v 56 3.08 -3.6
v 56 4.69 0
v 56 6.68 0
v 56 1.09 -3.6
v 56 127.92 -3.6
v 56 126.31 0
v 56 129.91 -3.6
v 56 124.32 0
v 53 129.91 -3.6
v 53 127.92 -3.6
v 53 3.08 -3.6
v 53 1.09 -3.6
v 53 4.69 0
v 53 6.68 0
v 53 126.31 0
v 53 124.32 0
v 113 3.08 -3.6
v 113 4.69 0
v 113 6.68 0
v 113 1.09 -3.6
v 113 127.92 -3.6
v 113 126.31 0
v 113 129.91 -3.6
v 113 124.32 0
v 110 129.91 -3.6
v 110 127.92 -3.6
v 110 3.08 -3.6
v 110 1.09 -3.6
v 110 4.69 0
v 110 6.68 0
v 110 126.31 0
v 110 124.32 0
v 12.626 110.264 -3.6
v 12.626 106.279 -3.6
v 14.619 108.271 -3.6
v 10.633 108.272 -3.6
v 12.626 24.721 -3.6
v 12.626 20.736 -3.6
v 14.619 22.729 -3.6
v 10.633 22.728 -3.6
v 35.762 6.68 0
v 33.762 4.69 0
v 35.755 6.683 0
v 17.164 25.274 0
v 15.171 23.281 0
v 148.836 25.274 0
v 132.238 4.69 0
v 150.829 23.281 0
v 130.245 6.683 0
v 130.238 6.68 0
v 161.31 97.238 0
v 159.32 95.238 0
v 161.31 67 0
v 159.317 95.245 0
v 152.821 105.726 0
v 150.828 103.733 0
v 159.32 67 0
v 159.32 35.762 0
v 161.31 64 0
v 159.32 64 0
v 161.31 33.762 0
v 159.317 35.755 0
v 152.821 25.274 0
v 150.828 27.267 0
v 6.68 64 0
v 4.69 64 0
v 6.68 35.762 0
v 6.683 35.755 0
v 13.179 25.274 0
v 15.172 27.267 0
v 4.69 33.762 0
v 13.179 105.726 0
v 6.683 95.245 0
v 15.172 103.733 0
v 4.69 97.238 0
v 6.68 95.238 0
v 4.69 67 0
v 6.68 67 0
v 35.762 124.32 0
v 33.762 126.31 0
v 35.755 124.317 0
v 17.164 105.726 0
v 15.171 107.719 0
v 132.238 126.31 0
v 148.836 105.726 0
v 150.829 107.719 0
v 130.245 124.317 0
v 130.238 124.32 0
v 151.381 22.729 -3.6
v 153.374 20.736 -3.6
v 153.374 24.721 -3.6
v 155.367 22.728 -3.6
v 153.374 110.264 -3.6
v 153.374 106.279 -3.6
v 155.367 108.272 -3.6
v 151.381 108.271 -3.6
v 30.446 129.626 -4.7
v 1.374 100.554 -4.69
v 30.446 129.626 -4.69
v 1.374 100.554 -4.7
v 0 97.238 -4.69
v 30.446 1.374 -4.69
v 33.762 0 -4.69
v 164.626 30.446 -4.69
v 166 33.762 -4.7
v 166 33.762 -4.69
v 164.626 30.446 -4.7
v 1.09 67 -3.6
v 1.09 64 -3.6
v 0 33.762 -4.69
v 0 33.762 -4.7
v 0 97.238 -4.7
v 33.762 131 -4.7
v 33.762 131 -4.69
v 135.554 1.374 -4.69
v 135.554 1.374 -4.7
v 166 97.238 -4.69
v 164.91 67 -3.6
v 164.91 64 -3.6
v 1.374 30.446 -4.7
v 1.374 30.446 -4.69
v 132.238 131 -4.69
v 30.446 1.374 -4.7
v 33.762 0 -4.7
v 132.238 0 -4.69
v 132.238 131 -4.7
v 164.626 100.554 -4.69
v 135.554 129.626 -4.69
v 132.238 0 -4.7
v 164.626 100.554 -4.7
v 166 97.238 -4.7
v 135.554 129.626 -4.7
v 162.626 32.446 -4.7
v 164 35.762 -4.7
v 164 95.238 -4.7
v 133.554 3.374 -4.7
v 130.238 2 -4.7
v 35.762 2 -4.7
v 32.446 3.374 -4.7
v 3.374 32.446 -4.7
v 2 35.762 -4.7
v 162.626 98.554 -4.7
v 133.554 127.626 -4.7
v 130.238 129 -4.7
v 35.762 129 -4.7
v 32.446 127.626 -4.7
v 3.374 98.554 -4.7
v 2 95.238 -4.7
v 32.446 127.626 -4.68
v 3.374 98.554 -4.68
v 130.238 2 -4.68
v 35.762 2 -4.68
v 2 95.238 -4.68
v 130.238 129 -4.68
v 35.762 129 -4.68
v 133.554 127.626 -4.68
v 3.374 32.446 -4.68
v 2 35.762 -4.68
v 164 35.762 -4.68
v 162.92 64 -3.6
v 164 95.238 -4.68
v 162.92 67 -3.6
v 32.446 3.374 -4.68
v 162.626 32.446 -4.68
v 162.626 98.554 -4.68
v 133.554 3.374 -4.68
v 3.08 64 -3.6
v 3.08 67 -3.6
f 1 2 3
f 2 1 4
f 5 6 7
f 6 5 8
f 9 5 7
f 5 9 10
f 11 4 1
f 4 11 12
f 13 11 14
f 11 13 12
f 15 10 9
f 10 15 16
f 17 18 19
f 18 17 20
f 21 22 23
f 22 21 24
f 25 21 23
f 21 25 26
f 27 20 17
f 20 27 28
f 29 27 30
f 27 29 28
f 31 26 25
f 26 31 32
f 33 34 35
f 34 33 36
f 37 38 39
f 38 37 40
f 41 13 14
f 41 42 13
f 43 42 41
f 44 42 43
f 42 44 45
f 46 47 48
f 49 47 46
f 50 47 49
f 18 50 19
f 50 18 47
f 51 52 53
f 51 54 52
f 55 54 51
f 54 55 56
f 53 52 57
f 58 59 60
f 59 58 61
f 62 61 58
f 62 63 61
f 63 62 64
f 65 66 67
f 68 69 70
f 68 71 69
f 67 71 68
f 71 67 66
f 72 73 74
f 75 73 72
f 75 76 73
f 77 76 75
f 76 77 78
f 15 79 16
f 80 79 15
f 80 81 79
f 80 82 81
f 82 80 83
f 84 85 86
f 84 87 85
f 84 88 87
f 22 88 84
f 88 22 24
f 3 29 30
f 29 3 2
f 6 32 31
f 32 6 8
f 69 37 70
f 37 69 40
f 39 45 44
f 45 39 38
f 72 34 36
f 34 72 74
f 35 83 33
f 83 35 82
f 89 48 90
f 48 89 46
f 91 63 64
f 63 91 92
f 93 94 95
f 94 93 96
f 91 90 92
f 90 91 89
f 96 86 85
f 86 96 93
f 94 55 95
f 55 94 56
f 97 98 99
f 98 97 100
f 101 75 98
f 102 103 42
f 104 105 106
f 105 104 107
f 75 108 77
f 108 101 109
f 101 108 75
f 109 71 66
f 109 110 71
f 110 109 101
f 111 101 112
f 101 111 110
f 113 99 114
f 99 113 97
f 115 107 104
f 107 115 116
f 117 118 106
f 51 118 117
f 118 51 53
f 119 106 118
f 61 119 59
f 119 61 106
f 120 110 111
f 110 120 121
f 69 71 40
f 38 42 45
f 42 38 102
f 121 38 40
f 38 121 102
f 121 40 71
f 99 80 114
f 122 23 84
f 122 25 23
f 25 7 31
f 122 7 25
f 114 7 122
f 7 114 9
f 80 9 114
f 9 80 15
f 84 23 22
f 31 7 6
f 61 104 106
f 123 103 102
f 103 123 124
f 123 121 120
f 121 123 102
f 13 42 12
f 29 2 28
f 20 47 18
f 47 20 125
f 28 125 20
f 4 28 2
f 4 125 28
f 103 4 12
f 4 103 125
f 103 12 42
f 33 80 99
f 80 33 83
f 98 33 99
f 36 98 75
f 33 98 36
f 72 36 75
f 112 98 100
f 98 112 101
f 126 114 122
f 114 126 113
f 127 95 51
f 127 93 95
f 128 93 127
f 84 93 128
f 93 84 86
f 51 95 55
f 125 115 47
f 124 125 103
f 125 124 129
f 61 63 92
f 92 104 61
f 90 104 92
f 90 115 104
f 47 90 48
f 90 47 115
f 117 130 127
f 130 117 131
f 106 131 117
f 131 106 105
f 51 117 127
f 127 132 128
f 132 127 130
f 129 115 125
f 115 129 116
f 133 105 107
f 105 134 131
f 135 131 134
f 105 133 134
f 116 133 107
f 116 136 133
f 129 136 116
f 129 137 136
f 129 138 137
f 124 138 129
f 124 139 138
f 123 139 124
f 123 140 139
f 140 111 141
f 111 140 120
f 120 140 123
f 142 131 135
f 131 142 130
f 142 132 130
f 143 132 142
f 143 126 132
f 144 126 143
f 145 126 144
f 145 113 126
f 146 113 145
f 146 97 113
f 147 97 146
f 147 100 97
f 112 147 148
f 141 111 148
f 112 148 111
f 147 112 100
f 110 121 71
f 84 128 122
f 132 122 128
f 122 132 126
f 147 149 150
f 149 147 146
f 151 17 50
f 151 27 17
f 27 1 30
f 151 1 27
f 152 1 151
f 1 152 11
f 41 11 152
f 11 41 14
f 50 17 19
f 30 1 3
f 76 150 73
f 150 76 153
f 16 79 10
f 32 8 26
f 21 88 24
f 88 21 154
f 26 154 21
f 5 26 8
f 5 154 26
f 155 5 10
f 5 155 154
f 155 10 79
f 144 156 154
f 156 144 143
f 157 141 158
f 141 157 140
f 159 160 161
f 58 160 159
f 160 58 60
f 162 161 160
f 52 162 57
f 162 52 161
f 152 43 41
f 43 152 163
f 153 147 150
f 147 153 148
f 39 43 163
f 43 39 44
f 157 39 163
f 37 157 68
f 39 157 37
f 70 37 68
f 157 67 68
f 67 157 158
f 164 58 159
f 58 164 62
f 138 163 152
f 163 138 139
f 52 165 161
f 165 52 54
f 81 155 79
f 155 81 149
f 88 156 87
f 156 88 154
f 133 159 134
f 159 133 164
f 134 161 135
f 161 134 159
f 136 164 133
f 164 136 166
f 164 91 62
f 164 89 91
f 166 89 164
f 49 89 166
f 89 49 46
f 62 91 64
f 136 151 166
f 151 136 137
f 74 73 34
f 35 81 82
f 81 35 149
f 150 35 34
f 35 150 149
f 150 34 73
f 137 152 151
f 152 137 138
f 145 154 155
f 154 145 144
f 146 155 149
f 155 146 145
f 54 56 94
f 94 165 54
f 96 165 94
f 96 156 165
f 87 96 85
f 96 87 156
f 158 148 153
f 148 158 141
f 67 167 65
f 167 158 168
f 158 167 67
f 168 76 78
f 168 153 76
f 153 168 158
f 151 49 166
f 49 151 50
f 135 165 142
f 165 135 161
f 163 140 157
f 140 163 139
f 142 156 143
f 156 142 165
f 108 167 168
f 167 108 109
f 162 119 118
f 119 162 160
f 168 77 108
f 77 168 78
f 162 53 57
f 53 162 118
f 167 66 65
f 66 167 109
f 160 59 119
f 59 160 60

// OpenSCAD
// file: ../chamferer.scad
INFINITY = 10000;
ATOM = .01;

module chamfer_tool(r, fn, tool,
                    ax, ay, az,
                    ax2, ay2, az2,
                    ax3, ay3, az3) {
    rotate([ax3, ay3, az3])
    rotate([ax2, ay2, az2])
    rotate([ax, ay, az]) {
        if (tool=="sphere") {
            sphere(r, $fn=fn);
        }
        else if (tool=="hemisphere-up") {
            intersection() {
                sphere(r, $fn=fn);
                cylinder(r=r*2, h=r*2);
            }
        }
        else if (tool=="hemisphere-down") {
            difference() {
                sphere(r, $fn=fn);
                cylinder(r=r*2, h=r*2);
            }
        }
        else if (tool=="cone") {
            cylinder(r, r, 0, $fn=fn);
            scale([1, 1, -1])
            cylinder(r, r, 0, $fn=fn);
        }
        else if (tool=="cone-up") {
            cylinder(r, r, 0, $fn=fn, center=true);
        }
        else if (tool=="cone-down") {
            scale([1, 1, -1])
            cylinder(r, r, 0, $fn=fn, center=true);
        }
        else if (tool=="octahedron") {
            resize([r*2, r*2, r*2]) {
                cylinder(r, r, 0, $fn=4);
                scale([1, 1, -1])
                cylinder(r, r, 0, $fn=4);
            }
        }
        else if (tool=="pyramid") {
            resize([r*2, r*2, r*2]) {
                cylinder(r, r, 0, center=true, $fn=4);
            }
        }
        else if (tool=="rpyramid") {
            resize([r*2, r*2, r*2]) {
                cylinder(r, 0, r, center=true, $fn=4);
            }
        }
        else if (tool=="cylinder-z" || tool=="cylinder") {
            cylinder(r=r, h=ATOM, $fn=fn, center=true);
        }
        else if (tool=="cylinder-x") {
            rotate([0, 90, 0])
            cylinder(r=r, h=ATOM, $fn=fn, center=true);
        }
        else if (tool=="cylinder-y") {
            rotate([90, 0, 0])
            cylinder(r=r, h=ATOM, $fn=fn, center=true);
        }
        else if (tool=="cube") {
            cube(r*2, center=true);
        }
        else if (tool=="plate-y") {
            cube([r*2, ATOM, r*2], center=true);
        }
        else if (tool=="plate-z") {
            cube([r*2, r*2, ATOM], center=true);
        }
        else {
            assert(false, str("Unknown tool: ", tool));
        }
    }
}

module shrinker(r, tool, fn,
                ax, ay, az,
                ax2, ay2, az2,
                ax3, ay3, az3) {
    if (!r) {
        children();
    }
    else {
        // re-invert+grow = fillet
        difference() {
            cube(INFINITY/2, center=true);

            // invert+grow = carve
            minkowski() {
                difference() {
                    cube(INFINITY, center=true);
                    children();
                }
                //cube(r, center=true);
                chamfer_tool(r, fn, tool,
                             ax, ay, az,
                             ax2, ay2, az2,
                             ax3, ay3, az3);
            }
        }
    }
}

module chamferer(r, tool="sphere", fn=8, shrink=true, grow=true,
                 ax=0, ay=0, az=0,
                 ax2=0, ay2=0, az2=0,
                 ax3=0, ay3=0, az3=0,
) {
    if (!r) {
        children();
    }
    else {
        minkowski() {
            if (shrink)
                shrinker(r, tool, fn,
                         ax, ay, az,
                         ax2, ay2, az2,
                         ax3, ay3, az3) children();
            else
                children();
            
            if (grow)
                chamfer_tool(r, fn, tool,
                             ax, ay, az,
                             ax2, ay2, az2,
                             ax3, ay3, az3);
        }
    }
}



cube(50);

translate([70, 0, 0])
chamferer(5, "hemisphere-up", $preview? 6*4 : 30)
//shrinker(5, "sphere", $preview? 6*4 : 30)
cube(50);

translate([70*2, 0, 0])
chamferer(5, "octahedron", grow=false)
cube(50);
// main file
use <../chamferer.scad>

//L = 110         -10;
//W = 163         + 0;
MARG = 17;

L = 150 - MARG*2    +15;
W = 200 - MARG*2;

H =   4.2           +0.5;
R =  30 +10         +5;
TH = 2;

ATOM = 0.01;

module rcube(w, l, h, r) {
    d = r*sqrt(2);
 
    hull()
    for (x=[d/2, l-d/2])
    for (y=[d/2, w-d/2])
        translate([x, y, h/2])
        rotate([0, 0, 45])
        cube([r, r, h], center=true);
}

module base(d=0, dh=0) {
    rcube(L-d*2, W-d*2, H+dh, R);
}

module frame(th=TH, ch=H-ATOM, d=0) {
    difference() {
        chamferer(ch, "cone-down")
        base(d);

    translate([th, th, -ATOM])
        chamferer(ch, "cone-down")
        base(d+th, ATOM*2);
    }
}

module all() {
    difference() {
        frame();
        
        d = 57;
        h =  3.6;
        w = 65 -10;
        th = 3;
        for (x=[-d/2, d/2])
            translate([x+W/2, 0, 0])
            cube([th, W*2, h*2], center=true);

        translate([W/2, L/2, 0])
        cube([W*2, th, h*2], center=true);

        for(sx_dx=[[1, 0], [-1, W]]) {
            sx = sx_dx[0];
            dx = sx_dx[1];            
            for(sy_dy=[[1, 0], [-1, L]]) {
                sy = sy_dy[0];
                dy = sy_dy[1];
                translate([dx, dy, 0])
                scale([sx, sy, 1])
                hull() {
                    translate([W/2 - w/2 - W/2, L/2 -W/2, 0])
                    cylinder(d=th, h=h);
                    translate([W/2 - w/2, L/2, 0])
                    cylinder(d=th, h=h);
                }
            }
        }

    }
}


scale([1, 1, -1])
all();
